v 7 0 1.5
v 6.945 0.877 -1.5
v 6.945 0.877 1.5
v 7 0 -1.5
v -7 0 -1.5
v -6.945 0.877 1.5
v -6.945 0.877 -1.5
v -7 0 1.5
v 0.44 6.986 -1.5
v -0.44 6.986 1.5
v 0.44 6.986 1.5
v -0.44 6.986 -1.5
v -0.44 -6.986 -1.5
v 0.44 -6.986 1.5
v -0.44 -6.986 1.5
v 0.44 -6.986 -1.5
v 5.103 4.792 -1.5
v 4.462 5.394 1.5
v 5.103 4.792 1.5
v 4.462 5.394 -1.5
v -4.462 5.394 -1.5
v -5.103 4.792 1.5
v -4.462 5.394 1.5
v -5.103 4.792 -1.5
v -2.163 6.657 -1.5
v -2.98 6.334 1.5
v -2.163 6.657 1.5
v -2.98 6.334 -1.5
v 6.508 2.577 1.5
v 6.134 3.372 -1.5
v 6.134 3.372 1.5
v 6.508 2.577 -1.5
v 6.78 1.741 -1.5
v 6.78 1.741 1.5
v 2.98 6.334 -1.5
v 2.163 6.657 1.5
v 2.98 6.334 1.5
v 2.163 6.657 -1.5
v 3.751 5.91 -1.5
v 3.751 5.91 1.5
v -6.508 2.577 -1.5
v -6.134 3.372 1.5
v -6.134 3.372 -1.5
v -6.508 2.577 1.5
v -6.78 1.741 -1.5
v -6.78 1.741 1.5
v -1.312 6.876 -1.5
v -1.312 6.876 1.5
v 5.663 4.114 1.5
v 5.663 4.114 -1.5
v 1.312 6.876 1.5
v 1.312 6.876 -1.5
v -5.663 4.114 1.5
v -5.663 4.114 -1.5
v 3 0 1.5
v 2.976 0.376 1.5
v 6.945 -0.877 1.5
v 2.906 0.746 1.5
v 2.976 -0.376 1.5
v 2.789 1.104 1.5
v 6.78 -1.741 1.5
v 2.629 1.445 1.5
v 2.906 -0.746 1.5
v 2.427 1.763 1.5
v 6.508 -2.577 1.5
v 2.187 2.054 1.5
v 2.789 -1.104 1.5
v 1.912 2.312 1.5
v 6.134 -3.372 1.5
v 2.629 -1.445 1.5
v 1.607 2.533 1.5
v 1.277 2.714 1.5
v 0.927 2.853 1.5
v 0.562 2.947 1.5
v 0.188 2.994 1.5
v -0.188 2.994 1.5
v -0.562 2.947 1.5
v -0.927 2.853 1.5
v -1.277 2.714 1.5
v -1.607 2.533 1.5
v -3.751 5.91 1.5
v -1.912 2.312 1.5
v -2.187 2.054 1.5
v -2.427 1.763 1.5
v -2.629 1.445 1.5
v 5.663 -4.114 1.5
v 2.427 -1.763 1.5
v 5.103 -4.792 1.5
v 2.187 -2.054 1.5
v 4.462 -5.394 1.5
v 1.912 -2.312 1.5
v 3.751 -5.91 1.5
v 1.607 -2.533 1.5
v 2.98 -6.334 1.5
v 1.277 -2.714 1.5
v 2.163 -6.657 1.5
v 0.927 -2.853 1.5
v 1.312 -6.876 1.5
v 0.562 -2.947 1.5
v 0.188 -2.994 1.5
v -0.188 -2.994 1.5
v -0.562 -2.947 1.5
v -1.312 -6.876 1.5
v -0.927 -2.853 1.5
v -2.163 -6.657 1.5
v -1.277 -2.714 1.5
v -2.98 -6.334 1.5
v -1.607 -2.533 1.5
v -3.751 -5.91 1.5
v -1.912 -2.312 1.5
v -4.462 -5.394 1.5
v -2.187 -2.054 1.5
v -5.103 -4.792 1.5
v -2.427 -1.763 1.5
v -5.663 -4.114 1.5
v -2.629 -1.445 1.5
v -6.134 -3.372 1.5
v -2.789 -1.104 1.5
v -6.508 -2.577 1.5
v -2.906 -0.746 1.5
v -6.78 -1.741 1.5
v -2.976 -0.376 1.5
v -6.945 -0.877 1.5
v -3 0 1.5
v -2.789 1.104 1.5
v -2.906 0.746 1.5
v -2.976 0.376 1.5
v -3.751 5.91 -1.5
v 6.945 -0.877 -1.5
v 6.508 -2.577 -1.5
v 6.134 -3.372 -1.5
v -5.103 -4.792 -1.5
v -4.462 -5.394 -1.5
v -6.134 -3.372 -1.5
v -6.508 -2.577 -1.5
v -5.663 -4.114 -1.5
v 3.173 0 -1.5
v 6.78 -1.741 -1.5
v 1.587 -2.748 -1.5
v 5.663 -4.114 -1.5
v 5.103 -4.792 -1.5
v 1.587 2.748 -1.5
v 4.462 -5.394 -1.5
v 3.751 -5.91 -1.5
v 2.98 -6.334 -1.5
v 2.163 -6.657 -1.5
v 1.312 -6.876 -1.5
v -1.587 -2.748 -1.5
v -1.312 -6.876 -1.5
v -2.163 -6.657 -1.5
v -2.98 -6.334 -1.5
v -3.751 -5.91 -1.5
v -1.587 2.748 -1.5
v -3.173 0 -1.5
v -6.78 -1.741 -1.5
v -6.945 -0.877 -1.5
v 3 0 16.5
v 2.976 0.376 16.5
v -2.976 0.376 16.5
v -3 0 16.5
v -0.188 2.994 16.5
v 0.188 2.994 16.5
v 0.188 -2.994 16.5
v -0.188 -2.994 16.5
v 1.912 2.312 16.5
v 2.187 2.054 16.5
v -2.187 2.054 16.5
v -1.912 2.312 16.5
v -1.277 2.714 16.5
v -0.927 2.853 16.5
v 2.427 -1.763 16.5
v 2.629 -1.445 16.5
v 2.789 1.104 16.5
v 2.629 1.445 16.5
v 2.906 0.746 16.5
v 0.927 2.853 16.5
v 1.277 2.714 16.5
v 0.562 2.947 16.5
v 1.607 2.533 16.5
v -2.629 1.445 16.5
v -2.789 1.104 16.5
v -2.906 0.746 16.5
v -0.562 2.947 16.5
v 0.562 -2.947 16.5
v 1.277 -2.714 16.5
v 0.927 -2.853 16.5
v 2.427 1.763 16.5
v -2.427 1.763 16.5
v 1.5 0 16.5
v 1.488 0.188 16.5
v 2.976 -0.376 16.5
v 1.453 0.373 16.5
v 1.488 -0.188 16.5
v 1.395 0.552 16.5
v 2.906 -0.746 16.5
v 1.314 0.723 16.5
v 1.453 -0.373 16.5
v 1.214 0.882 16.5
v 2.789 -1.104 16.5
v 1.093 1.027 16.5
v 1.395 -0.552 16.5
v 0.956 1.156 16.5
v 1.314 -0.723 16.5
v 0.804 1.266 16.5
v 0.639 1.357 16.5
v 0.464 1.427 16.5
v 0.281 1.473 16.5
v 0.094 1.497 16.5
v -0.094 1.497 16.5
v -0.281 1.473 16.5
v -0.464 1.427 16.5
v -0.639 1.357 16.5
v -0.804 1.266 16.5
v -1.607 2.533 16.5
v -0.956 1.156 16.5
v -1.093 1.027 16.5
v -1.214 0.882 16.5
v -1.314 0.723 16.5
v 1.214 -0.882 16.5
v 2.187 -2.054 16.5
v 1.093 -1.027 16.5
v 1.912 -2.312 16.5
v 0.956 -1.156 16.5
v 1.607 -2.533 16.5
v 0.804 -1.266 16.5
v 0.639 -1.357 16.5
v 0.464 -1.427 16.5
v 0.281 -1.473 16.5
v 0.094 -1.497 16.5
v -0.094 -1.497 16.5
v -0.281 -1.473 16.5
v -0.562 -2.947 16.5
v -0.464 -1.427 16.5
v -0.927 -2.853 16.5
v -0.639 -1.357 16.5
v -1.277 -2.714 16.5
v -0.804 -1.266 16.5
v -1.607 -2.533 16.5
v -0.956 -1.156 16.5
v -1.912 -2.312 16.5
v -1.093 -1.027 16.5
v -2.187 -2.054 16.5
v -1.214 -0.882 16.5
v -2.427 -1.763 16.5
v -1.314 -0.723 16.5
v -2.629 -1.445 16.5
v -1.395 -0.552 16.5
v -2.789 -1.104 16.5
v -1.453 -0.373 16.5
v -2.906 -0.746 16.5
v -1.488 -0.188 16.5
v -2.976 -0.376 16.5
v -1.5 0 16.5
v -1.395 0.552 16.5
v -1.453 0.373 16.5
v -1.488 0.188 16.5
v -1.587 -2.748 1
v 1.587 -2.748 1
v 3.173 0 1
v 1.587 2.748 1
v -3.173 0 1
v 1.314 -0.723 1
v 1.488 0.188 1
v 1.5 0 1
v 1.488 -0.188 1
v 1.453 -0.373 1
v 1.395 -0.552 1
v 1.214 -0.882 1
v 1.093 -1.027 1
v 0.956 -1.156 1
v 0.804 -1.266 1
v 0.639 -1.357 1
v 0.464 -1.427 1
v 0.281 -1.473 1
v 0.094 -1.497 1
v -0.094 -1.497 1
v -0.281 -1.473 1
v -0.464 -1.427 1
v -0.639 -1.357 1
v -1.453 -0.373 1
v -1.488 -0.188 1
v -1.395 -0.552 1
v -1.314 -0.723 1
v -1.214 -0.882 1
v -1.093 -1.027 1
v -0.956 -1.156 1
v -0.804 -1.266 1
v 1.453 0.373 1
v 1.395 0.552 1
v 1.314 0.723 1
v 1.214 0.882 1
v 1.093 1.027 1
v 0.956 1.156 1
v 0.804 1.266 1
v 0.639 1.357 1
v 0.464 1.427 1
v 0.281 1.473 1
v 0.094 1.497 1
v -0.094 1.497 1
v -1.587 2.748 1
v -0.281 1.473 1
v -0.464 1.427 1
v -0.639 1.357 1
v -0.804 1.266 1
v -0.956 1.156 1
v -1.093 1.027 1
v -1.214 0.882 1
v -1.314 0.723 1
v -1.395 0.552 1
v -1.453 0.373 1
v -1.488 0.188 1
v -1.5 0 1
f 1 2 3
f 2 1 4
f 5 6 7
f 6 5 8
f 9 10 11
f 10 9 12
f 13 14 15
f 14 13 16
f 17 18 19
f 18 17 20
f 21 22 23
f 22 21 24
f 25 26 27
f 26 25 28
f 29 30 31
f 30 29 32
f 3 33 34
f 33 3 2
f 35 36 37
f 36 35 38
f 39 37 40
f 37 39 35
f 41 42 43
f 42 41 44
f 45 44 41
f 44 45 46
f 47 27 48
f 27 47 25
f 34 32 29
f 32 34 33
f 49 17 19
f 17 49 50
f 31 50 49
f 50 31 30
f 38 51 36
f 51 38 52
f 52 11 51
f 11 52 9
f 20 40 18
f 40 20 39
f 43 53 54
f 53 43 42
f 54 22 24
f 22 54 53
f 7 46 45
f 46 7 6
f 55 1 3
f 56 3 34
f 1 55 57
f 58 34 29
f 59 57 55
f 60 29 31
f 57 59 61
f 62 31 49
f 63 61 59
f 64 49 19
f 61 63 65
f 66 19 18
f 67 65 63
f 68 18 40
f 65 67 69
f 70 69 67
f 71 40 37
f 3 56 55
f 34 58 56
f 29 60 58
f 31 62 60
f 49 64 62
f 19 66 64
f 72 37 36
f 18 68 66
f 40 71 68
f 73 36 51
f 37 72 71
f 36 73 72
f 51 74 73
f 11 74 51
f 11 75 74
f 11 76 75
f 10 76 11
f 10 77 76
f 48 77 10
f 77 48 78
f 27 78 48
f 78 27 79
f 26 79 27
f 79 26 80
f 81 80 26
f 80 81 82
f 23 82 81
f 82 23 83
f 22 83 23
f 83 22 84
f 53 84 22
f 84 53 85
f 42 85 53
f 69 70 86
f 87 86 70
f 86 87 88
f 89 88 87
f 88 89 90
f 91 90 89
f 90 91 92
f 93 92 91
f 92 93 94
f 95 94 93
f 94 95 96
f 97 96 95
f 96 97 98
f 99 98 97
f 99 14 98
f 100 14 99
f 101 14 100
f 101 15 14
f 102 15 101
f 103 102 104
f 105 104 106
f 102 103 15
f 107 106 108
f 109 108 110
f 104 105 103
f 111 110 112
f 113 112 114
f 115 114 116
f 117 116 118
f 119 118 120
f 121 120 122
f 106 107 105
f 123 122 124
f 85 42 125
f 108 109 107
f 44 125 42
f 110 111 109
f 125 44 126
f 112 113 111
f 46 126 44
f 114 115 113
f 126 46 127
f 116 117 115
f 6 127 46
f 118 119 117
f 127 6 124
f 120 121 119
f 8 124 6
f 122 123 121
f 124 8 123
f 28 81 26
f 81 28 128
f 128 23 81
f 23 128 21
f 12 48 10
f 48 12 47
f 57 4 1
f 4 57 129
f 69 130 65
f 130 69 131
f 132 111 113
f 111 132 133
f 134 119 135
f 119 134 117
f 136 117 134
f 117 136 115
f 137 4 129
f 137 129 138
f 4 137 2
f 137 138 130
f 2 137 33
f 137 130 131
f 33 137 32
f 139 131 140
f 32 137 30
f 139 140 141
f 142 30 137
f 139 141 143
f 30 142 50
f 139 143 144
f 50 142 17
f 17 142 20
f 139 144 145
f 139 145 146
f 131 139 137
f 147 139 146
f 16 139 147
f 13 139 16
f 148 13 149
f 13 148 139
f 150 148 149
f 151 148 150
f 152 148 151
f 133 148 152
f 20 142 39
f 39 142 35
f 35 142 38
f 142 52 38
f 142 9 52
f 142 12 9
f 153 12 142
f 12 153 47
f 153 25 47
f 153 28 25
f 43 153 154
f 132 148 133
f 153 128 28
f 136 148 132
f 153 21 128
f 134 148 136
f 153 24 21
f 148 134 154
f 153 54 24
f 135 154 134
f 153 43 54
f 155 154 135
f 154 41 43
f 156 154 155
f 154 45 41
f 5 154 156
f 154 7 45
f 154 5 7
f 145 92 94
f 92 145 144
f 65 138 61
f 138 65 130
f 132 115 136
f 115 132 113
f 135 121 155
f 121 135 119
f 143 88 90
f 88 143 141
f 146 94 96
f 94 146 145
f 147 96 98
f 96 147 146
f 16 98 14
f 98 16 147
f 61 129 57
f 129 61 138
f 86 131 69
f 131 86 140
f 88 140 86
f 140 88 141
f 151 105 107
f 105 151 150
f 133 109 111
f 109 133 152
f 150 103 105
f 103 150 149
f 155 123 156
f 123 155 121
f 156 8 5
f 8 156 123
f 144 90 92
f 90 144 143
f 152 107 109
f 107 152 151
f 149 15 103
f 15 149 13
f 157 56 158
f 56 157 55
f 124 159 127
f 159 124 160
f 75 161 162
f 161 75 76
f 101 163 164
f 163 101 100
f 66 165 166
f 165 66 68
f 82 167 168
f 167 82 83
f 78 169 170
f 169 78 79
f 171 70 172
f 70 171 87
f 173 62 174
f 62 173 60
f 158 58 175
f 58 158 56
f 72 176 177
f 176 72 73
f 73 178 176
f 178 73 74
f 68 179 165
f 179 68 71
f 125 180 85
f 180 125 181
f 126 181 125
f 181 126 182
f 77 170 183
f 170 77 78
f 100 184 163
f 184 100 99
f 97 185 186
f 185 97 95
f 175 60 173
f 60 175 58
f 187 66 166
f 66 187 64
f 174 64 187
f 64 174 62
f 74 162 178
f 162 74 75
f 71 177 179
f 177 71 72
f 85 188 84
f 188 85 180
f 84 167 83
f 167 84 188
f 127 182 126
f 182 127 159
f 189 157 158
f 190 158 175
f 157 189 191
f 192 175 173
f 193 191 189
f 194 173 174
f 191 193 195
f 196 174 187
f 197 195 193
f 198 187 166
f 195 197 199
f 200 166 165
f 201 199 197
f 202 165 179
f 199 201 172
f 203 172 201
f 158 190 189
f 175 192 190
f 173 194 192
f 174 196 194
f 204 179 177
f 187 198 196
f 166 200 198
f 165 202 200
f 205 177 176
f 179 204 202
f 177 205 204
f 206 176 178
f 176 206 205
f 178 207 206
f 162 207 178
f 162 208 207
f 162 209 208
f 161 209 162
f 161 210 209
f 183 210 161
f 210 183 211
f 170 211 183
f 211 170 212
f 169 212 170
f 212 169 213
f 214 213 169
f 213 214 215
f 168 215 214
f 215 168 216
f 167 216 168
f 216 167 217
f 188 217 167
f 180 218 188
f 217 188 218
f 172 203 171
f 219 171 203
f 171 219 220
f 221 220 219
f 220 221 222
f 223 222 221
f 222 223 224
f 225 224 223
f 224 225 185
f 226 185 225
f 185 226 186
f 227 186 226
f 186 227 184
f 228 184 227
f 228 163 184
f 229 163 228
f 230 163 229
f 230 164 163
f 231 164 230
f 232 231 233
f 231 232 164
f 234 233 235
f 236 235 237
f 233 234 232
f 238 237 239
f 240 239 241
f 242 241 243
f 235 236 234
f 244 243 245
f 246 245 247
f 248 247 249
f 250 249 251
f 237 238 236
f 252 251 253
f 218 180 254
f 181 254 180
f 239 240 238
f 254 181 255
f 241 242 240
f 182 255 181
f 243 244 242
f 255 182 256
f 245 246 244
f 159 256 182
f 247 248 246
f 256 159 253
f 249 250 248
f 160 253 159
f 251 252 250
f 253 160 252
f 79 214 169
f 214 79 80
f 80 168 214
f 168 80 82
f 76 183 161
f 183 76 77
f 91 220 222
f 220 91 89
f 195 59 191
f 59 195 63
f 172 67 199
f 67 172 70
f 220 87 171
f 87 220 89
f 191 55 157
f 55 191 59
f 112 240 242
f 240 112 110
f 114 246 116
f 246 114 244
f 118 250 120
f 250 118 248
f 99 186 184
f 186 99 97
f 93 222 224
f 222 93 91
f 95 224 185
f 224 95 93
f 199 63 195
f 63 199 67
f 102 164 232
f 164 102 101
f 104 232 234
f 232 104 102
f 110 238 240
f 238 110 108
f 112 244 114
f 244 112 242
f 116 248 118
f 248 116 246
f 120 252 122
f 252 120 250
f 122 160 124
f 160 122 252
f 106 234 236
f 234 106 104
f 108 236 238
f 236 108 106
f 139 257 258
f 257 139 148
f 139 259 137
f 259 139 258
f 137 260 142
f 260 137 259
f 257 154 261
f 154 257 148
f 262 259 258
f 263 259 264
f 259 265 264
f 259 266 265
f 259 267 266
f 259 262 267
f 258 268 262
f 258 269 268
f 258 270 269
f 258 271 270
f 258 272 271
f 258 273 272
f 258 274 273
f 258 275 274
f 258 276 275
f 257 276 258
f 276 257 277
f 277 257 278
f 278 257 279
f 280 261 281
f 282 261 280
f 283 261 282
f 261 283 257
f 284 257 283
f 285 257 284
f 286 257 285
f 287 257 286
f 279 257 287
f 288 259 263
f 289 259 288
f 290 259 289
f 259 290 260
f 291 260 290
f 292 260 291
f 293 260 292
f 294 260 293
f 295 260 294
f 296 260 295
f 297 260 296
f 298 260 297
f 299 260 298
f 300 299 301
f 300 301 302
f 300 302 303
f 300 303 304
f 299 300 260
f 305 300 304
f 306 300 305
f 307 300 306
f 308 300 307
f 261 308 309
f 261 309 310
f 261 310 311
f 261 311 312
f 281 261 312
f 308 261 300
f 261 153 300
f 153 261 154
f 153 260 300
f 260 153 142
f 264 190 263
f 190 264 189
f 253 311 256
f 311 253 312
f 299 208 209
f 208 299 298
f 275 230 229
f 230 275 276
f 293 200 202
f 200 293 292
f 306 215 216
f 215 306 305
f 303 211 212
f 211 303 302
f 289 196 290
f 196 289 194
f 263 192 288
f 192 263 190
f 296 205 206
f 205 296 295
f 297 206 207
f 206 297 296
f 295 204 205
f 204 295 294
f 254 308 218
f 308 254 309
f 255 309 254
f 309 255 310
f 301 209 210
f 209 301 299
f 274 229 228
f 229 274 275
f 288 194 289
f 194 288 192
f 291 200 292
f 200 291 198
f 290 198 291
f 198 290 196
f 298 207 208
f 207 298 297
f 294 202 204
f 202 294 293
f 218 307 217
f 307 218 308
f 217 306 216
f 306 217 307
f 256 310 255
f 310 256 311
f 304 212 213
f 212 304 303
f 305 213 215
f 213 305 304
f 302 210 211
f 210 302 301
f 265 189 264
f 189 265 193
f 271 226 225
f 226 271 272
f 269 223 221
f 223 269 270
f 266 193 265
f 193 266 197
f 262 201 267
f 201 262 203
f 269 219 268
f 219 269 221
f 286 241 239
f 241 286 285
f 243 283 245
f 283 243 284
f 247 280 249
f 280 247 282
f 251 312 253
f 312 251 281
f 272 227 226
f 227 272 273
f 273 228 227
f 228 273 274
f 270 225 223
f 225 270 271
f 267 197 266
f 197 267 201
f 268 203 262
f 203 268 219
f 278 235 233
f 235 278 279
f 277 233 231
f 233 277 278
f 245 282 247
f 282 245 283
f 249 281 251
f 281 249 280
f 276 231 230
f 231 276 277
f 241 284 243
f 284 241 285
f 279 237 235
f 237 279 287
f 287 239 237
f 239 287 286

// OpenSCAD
$fn = 50;


difference() {
	union() {
		translate(v = [0, 0, -1.5000000000]) {
			cylinder(h = 3, r = 7.0000000000);
		}
		translate(v = [0, 0, -1.5000000000]) {
			cylinder(h = 18, r = 3.0000000000);
		}
	}
	union() {
		translate(v = [0, 0, -1.5000000000]) {
			rotate(a = [0, 0, 0]) {
				difference() {
					union() {
						linear_extrude(height = 2.5000000000) {
							polygon(points = [[3.1735000000, 0.0000000000], [1.5867500000, 2.7483316189], [-1.5867500000, 2.7483316189], [-3.1735000000, 0.0000000000], [-1.5867500000, -2.7483316189], [1.5867500000, -2.7483316189]]);
						}
					}
					union();
				}
			}
		}
		translate(v = [0, 0, -50.0000000000]) {
			cylinder(h = 100, r = 1.5000000000);
		}
	}
}
